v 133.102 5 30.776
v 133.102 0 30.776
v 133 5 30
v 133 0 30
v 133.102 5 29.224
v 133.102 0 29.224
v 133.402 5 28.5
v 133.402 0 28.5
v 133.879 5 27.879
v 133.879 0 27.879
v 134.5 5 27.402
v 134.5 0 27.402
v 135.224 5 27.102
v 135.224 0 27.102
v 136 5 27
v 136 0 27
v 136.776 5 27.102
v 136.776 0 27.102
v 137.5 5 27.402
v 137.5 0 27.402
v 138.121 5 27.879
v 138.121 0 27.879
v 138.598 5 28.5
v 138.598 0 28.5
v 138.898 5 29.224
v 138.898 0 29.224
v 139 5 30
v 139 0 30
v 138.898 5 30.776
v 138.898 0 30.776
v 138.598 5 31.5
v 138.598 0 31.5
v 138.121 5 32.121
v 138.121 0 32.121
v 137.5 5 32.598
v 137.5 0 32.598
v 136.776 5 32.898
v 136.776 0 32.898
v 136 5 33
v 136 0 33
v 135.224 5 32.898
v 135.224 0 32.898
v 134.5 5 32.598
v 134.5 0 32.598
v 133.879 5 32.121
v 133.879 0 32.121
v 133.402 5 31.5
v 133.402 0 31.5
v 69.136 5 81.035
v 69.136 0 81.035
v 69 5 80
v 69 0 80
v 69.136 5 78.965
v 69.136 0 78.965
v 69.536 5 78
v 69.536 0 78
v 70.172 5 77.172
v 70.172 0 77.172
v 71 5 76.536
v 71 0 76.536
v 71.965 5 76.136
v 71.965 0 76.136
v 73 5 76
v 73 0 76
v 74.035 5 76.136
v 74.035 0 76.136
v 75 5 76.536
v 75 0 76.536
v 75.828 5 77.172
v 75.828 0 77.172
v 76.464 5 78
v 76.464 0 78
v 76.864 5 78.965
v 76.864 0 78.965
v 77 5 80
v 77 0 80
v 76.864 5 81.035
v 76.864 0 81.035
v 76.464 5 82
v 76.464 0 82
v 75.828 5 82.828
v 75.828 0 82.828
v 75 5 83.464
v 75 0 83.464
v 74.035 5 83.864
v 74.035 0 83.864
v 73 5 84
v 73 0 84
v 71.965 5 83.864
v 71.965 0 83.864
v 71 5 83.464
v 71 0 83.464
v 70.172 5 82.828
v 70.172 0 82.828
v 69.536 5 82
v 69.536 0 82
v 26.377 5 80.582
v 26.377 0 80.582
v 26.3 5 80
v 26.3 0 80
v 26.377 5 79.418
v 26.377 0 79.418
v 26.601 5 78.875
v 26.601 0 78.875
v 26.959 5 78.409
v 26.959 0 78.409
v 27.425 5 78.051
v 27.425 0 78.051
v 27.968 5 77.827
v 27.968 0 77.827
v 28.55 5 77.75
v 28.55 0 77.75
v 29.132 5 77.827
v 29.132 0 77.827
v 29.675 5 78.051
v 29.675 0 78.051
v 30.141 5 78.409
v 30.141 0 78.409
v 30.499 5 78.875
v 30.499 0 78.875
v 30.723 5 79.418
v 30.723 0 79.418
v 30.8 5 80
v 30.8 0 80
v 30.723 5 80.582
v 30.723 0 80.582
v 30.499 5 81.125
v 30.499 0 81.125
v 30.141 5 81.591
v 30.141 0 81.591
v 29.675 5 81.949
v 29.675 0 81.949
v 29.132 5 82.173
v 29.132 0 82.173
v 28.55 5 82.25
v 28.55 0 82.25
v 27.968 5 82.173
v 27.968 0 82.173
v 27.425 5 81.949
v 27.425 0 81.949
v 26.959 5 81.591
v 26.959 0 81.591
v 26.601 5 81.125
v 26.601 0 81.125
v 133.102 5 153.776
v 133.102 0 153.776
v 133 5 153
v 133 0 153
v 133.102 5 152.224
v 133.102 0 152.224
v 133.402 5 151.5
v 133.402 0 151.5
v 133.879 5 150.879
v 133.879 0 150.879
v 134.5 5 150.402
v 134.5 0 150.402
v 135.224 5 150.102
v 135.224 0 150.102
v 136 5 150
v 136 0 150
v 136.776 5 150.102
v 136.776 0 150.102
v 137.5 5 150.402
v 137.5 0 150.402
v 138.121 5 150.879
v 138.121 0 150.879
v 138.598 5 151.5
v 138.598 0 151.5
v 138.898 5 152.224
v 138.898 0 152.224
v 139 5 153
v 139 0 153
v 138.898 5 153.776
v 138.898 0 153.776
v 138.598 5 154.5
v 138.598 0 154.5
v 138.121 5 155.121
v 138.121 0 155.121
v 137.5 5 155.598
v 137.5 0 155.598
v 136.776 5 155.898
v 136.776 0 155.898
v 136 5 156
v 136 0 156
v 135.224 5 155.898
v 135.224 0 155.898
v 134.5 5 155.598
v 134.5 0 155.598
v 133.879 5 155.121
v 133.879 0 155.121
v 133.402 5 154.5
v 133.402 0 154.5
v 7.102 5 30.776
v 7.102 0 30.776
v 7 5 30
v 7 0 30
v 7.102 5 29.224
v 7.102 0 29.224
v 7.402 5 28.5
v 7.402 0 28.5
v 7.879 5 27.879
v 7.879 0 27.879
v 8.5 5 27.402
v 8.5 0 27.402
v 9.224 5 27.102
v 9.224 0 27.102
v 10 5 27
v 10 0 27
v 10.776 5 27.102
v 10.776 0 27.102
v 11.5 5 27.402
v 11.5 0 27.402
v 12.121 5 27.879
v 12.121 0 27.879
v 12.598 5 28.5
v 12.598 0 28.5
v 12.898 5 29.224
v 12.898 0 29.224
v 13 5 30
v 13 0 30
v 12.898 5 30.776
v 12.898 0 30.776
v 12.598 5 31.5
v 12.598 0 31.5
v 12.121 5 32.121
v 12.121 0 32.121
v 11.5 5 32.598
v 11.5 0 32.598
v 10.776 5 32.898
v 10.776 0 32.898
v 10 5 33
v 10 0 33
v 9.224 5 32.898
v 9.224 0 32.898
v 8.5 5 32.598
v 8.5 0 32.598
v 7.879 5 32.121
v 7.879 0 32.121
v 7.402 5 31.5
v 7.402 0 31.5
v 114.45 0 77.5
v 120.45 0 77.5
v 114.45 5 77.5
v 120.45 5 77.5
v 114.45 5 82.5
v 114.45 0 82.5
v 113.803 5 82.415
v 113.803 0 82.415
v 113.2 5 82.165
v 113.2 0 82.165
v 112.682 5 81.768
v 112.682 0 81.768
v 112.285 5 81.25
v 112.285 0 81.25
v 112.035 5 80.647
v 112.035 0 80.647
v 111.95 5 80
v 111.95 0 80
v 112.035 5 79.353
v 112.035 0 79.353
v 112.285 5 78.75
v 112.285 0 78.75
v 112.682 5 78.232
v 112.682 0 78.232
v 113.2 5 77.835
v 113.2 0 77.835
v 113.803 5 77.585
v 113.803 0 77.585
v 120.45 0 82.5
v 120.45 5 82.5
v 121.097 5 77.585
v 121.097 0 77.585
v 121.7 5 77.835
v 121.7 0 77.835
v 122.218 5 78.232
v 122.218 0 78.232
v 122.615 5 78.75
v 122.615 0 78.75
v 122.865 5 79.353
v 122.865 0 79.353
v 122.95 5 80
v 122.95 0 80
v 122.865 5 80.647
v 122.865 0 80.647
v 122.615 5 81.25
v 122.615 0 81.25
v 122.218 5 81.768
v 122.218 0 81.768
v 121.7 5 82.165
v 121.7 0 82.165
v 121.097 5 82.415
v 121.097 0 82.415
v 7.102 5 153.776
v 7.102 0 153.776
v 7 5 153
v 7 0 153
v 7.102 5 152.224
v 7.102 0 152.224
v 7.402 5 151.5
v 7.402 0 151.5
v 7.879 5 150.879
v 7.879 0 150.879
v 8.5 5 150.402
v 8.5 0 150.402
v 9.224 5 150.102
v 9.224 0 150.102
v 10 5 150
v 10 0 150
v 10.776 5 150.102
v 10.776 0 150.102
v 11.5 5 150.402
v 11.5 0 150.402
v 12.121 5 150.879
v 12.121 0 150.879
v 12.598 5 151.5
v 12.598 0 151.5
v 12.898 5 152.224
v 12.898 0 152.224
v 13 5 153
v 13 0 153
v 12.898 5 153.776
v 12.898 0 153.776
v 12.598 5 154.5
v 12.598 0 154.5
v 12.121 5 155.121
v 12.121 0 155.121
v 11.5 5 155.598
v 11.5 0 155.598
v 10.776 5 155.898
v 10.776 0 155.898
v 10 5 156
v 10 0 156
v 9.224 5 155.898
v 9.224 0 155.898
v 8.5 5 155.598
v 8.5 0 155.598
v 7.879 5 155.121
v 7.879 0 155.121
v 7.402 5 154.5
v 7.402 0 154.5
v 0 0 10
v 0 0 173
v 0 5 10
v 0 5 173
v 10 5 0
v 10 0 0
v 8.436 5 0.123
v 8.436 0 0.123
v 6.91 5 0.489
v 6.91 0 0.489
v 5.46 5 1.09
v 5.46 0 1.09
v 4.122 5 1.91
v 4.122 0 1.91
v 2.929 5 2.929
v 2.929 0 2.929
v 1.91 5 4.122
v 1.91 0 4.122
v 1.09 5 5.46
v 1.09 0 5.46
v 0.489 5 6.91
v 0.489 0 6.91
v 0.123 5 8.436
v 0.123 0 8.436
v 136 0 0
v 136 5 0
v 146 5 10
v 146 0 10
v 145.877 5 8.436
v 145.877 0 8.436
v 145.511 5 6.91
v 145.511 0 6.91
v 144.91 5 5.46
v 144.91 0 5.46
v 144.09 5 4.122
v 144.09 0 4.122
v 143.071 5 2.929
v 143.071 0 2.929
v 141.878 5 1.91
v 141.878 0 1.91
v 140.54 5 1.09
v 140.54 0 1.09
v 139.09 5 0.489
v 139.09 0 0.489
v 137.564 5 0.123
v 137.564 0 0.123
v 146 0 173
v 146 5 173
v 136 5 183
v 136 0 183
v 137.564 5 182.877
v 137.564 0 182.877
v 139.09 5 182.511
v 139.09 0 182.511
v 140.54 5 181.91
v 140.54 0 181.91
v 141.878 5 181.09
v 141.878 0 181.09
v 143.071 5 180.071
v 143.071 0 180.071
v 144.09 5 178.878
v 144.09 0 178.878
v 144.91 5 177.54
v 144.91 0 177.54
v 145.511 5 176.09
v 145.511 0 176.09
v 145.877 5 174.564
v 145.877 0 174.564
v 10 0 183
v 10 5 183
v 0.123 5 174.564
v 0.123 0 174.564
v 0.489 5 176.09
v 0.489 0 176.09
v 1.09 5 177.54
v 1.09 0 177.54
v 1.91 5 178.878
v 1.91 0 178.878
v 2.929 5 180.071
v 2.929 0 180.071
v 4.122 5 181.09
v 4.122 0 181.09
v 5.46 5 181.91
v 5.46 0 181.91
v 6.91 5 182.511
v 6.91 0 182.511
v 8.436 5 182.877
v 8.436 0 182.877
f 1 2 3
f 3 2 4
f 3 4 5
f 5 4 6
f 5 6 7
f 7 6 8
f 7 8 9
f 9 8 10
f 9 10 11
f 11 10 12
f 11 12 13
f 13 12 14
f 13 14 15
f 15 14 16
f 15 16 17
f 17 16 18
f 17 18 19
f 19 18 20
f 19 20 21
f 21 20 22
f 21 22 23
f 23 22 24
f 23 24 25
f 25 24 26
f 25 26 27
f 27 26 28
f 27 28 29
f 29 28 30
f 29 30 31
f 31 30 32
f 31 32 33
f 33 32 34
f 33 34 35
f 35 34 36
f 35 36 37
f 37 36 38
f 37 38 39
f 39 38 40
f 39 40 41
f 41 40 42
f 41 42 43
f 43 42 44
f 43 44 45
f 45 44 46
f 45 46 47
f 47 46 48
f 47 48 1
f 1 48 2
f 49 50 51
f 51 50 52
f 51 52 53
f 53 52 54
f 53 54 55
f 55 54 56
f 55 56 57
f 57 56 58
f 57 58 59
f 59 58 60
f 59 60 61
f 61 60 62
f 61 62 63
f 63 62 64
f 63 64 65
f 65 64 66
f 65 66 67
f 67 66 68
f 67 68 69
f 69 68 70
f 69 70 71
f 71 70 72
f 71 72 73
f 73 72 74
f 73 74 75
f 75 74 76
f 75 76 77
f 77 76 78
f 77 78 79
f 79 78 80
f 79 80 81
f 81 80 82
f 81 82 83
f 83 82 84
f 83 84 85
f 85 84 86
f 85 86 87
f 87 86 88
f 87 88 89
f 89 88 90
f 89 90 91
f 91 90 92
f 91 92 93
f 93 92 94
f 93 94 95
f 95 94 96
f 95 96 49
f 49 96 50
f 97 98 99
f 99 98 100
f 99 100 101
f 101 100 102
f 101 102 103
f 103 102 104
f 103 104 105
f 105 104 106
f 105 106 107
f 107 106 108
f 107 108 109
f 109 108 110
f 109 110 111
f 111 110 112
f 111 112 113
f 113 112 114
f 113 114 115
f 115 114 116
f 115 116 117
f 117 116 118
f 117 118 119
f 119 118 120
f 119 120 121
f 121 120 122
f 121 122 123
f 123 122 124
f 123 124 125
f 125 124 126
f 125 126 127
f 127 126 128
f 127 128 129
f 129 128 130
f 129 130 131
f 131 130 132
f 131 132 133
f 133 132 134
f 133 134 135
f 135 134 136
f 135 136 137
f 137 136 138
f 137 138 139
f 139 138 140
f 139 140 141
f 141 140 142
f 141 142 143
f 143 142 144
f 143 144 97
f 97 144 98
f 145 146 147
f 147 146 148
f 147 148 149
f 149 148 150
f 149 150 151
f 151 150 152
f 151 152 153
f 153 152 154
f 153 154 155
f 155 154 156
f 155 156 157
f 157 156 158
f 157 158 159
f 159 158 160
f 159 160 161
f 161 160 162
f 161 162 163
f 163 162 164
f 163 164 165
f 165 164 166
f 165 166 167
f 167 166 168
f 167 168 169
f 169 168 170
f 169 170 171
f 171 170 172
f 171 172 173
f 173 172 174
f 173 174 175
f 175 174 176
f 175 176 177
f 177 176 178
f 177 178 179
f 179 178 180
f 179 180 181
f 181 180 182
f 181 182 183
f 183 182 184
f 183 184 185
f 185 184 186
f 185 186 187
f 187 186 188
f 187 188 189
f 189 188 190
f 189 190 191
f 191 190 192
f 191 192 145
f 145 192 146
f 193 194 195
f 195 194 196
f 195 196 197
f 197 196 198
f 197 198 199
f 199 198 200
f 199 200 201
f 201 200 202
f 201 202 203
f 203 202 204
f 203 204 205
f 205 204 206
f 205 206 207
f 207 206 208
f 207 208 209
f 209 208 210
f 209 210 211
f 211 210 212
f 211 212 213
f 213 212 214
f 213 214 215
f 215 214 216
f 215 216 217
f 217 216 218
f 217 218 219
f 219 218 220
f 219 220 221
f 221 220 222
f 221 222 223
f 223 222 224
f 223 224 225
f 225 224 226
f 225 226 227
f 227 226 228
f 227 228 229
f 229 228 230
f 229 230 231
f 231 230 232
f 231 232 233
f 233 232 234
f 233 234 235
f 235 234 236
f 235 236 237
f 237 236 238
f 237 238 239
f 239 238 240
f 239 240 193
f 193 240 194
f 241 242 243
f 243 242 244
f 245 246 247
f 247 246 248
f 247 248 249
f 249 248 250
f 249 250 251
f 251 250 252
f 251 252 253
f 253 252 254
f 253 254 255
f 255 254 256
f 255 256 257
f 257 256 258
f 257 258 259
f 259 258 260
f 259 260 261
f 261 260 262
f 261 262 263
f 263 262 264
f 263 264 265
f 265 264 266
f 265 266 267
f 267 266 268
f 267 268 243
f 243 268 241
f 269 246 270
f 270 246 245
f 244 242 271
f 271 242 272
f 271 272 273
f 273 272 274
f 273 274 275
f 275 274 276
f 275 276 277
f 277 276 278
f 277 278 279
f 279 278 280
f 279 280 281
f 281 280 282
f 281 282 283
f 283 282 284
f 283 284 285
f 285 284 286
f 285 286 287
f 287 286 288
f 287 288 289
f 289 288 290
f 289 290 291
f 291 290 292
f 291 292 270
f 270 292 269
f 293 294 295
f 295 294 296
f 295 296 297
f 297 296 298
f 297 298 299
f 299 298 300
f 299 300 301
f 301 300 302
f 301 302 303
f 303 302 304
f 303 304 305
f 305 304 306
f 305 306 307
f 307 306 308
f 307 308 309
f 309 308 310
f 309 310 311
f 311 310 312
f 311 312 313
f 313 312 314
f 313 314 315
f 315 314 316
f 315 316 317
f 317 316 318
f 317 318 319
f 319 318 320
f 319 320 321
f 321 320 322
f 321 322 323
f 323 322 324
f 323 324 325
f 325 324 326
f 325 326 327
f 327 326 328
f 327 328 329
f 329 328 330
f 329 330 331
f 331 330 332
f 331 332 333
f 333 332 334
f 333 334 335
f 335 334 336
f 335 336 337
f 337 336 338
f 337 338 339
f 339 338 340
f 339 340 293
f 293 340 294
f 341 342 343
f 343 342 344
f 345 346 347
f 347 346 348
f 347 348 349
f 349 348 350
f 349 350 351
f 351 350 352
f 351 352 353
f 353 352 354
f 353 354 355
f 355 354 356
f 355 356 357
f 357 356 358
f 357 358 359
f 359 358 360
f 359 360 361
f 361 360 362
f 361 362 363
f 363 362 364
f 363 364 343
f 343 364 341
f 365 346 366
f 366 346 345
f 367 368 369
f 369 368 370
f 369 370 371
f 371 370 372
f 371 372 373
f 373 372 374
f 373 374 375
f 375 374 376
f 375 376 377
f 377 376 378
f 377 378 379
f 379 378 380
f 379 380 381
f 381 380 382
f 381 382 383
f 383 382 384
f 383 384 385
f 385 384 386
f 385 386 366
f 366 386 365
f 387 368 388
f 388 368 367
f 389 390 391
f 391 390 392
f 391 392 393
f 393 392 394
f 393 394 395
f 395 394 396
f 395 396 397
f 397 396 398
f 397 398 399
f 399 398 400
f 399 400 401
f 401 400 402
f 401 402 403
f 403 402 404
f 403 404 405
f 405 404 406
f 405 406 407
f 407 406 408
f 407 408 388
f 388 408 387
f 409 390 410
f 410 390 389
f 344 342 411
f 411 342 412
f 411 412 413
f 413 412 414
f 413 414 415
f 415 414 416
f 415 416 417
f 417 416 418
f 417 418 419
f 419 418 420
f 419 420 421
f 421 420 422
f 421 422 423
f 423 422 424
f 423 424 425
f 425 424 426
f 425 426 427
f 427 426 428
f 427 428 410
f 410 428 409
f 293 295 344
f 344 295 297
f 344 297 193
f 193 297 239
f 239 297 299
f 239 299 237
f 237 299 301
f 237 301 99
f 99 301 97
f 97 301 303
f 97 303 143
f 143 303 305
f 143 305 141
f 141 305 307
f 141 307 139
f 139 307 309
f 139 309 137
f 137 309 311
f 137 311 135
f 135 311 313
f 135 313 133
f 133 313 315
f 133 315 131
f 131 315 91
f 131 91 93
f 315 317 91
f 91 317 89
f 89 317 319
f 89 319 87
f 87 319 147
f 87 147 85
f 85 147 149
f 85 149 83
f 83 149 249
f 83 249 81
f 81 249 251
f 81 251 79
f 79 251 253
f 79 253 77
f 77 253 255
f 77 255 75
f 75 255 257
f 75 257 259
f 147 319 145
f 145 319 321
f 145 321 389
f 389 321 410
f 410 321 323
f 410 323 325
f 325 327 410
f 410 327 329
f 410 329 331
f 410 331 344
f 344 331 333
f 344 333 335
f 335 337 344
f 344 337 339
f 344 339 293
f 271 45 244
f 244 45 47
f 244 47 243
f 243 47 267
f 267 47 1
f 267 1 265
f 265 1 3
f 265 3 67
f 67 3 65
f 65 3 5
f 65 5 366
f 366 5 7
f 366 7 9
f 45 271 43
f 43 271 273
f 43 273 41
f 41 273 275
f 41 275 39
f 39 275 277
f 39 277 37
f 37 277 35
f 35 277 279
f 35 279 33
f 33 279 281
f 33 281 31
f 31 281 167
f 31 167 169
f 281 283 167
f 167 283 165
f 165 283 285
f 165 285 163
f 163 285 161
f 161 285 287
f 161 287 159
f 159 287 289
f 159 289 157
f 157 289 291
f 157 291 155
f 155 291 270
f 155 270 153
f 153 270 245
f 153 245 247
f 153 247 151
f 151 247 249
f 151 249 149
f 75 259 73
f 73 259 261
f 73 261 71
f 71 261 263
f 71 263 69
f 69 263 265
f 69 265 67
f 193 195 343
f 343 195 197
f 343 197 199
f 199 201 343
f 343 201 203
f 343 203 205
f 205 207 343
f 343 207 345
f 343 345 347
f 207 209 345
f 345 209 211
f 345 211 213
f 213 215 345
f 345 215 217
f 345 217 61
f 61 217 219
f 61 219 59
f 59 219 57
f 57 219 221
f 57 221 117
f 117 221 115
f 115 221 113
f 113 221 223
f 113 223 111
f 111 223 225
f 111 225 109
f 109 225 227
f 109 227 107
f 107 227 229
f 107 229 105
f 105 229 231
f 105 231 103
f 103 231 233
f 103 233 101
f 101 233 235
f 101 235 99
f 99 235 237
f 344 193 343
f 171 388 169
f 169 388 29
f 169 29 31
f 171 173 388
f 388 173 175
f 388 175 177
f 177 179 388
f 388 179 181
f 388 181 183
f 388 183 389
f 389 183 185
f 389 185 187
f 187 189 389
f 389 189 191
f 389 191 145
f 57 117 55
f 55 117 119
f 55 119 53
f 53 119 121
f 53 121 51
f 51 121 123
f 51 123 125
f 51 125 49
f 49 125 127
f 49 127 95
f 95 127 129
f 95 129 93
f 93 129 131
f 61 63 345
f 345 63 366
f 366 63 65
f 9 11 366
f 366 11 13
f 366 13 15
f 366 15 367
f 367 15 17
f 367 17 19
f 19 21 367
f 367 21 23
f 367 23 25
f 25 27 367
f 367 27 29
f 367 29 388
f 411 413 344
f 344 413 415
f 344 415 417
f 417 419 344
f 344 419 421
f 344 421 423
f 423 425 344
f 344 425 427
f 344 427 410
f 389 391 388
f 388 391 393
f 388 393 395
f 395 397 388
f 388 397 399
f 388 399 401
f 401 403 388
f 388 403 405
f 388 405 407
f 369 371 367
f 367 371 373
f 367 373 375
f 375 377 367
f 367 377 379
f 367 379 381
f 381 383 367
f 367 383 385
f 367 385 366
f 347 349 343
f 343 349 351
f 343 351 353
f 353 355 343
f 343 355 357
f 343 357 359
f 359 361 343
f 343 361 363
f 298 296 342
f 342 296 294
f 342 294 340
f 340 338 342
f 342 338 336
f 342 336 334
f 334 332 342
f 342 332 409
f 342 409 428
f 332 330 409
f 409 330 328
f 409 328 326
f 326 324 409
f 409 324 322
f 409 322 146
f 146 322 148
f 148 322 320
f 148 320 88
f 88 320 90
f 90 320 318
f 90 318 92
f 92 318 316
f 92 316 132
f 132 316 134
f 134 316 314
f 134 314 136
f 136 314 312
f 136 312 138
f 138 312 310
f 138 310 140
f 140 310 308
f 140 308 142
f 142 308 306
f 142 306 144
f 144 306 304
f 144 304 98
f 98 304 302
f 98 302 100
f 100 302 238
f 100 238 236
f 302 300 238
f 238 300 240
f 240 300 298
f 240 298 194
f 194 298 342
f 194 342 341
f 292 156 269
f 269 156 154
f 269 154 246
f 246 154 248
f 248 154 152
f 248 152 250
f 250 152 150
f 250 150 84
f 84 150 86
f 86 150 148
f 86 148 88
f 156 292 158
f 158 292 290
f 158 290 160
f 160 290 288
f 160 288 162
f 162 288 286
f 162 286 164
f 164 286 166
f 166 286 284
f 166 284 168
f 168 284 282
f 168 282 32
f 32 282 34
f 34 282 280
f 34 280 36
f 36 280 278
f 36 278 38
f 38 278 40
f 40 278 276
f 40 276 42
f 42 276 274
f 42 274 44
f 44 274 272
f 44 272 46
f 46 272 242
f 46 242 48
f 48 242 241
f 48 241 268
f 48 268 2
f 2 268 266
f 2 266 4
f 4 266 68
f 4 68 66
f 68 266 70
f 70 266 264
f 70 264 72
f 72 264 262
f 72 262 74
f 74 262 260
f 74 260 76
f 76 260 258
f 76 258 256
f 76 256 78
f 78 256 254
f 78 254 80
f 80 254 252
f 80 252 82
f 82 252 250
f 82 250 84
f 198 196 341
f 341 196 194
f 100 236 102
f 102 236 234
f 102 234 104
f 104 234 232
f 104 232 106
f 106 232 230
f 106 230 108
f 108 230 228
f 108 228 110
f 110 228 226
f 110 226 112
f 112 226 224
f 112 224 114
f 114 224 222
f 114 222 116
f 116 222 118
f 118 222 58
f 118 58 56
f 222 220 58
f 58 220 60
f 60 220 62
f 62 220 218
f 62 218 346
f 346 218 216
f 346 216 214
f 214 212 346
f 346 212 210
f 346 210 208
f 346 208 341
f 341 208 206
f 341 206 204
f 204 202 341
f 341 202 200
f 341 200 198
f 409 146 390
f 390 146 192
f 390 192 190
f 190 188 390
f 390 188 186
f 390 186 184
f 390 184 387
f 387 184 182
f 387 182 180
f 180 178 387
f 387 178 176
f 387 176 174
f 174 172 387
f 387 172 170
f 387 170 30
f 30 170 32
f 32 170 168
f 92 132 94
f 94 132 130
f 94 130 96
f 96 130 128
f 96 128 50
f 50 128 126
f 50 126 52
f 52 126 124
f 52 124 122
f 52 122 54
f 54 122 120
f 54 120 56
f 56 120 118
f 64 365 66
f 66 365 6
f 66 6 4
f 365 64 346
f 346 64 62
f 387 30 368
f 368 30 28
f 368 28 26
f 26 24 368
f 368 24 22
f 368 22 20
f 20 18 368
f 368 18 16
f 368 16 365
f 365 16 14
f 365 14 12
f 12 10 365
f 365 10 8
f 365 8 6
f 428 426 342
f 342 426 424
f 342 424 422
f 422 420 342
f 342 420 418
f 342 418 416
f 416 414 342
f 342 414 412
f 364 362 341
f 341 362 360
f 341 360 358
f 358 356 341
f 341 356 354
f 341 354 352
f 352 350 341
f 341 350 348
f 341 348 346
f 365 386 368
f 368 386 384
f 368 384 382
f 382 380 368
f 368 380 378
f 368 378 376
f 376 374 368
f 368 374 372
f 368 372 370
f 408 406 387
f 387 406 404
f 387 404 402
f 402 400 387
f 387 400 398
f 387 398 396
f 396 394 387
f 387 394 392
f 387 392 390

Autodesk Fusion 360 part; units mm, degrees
sketch "Skizze1" plane through (0, 0, 0) normal (0, 1, 0) x (1, 0, 0)
  line L0 (10, 0) -> (136, 0)
  line L1 (146, -10) -> (146, -173)
  line L2 (136, -183) -> (10, -183)
  line L3 (0, -173) -> (0, -10)
  line L4 (20, -20) -> (126, -20)
  line L5 (126, -20) -> (126, -163)
  line L6 (126, -163) -> (20, -163)
  line L7 (20, -163) -> (20, -20)
  circle A0 centre (10, -30) radius 3
  circle A1 centre (10, -153) radius 3
  circle A2 centre (136, -30) radius 3
  circle A3 centre (136, -153) radius 3
  circle A4 centre (28.55, -80) radius 2.25
  line L8 (120.45, -77.5) -> (114.45, -77.5)
  arc A5 (114.45, -77.5) -> (114.45, -82.5) centre (114.45, -80) ccw
  line L9 (114.45, -82.5) -> (120.45, -82.5)
  arc A6 (120.45, -82.5) -> (120.45, -77.5) centre (120.45, -80) ccw
  line L10 (120.45, -80) -> (114.45, -80) construction
  circle A7 centre (73, -80) radius 4
  arc A8 (10, 0) -> (0, -10) centre (10, -10) ccw
  arc A9 (146, -10) -> (136, 0) centre (136, -10) ccw
  arc A10 (0, -173) -> (10, -183) centre (10, -173) ccw
  arc A11 (136, -183) -> (146, -173) centre (136, -173) ccw
  point P0 (146, 0)
  point P1 (0, -183)
  point P2 (117.45, -80)
  dimension "d1" = 183
  dimension "d2" = 146
  dimension "d3" = 20
  dimension "d4" = 20
  dimension "d5" = 20
  dimension "d6" = 20
  dimension "d7" = 6
  dimension "d8" = 6
  dimension "d9" = 6
  dimension "d10" = 6
  dimension "d11" = 10
  dimension "d12" = 10
  dimension "d13" = 30
  dimension "d14" = 30
  dimension "d15" = 30
  dimension "d16" = 10
  dimension "d17" = 10
  dimension "d18" = 30
  dimension "d19" = 4.5
  dimension "d22" = 8.55
  dimension "d24" = 6
  dimension "d25" = 5
  dimension "d26" = 88.9
  dimension "d27" = 60
  dimension "d28" = 60
  dimension "d30" = 8
  dimension "d31" = 44.45
  dimension "d32" = 60
  dimension "d35" = 10
extrude "Extrusion1" add sketch "Skizze1" along normal blind 5 contours L0 L1 L2 L3 A8 A9 A10 A11 | L4 L5 L6 L7
